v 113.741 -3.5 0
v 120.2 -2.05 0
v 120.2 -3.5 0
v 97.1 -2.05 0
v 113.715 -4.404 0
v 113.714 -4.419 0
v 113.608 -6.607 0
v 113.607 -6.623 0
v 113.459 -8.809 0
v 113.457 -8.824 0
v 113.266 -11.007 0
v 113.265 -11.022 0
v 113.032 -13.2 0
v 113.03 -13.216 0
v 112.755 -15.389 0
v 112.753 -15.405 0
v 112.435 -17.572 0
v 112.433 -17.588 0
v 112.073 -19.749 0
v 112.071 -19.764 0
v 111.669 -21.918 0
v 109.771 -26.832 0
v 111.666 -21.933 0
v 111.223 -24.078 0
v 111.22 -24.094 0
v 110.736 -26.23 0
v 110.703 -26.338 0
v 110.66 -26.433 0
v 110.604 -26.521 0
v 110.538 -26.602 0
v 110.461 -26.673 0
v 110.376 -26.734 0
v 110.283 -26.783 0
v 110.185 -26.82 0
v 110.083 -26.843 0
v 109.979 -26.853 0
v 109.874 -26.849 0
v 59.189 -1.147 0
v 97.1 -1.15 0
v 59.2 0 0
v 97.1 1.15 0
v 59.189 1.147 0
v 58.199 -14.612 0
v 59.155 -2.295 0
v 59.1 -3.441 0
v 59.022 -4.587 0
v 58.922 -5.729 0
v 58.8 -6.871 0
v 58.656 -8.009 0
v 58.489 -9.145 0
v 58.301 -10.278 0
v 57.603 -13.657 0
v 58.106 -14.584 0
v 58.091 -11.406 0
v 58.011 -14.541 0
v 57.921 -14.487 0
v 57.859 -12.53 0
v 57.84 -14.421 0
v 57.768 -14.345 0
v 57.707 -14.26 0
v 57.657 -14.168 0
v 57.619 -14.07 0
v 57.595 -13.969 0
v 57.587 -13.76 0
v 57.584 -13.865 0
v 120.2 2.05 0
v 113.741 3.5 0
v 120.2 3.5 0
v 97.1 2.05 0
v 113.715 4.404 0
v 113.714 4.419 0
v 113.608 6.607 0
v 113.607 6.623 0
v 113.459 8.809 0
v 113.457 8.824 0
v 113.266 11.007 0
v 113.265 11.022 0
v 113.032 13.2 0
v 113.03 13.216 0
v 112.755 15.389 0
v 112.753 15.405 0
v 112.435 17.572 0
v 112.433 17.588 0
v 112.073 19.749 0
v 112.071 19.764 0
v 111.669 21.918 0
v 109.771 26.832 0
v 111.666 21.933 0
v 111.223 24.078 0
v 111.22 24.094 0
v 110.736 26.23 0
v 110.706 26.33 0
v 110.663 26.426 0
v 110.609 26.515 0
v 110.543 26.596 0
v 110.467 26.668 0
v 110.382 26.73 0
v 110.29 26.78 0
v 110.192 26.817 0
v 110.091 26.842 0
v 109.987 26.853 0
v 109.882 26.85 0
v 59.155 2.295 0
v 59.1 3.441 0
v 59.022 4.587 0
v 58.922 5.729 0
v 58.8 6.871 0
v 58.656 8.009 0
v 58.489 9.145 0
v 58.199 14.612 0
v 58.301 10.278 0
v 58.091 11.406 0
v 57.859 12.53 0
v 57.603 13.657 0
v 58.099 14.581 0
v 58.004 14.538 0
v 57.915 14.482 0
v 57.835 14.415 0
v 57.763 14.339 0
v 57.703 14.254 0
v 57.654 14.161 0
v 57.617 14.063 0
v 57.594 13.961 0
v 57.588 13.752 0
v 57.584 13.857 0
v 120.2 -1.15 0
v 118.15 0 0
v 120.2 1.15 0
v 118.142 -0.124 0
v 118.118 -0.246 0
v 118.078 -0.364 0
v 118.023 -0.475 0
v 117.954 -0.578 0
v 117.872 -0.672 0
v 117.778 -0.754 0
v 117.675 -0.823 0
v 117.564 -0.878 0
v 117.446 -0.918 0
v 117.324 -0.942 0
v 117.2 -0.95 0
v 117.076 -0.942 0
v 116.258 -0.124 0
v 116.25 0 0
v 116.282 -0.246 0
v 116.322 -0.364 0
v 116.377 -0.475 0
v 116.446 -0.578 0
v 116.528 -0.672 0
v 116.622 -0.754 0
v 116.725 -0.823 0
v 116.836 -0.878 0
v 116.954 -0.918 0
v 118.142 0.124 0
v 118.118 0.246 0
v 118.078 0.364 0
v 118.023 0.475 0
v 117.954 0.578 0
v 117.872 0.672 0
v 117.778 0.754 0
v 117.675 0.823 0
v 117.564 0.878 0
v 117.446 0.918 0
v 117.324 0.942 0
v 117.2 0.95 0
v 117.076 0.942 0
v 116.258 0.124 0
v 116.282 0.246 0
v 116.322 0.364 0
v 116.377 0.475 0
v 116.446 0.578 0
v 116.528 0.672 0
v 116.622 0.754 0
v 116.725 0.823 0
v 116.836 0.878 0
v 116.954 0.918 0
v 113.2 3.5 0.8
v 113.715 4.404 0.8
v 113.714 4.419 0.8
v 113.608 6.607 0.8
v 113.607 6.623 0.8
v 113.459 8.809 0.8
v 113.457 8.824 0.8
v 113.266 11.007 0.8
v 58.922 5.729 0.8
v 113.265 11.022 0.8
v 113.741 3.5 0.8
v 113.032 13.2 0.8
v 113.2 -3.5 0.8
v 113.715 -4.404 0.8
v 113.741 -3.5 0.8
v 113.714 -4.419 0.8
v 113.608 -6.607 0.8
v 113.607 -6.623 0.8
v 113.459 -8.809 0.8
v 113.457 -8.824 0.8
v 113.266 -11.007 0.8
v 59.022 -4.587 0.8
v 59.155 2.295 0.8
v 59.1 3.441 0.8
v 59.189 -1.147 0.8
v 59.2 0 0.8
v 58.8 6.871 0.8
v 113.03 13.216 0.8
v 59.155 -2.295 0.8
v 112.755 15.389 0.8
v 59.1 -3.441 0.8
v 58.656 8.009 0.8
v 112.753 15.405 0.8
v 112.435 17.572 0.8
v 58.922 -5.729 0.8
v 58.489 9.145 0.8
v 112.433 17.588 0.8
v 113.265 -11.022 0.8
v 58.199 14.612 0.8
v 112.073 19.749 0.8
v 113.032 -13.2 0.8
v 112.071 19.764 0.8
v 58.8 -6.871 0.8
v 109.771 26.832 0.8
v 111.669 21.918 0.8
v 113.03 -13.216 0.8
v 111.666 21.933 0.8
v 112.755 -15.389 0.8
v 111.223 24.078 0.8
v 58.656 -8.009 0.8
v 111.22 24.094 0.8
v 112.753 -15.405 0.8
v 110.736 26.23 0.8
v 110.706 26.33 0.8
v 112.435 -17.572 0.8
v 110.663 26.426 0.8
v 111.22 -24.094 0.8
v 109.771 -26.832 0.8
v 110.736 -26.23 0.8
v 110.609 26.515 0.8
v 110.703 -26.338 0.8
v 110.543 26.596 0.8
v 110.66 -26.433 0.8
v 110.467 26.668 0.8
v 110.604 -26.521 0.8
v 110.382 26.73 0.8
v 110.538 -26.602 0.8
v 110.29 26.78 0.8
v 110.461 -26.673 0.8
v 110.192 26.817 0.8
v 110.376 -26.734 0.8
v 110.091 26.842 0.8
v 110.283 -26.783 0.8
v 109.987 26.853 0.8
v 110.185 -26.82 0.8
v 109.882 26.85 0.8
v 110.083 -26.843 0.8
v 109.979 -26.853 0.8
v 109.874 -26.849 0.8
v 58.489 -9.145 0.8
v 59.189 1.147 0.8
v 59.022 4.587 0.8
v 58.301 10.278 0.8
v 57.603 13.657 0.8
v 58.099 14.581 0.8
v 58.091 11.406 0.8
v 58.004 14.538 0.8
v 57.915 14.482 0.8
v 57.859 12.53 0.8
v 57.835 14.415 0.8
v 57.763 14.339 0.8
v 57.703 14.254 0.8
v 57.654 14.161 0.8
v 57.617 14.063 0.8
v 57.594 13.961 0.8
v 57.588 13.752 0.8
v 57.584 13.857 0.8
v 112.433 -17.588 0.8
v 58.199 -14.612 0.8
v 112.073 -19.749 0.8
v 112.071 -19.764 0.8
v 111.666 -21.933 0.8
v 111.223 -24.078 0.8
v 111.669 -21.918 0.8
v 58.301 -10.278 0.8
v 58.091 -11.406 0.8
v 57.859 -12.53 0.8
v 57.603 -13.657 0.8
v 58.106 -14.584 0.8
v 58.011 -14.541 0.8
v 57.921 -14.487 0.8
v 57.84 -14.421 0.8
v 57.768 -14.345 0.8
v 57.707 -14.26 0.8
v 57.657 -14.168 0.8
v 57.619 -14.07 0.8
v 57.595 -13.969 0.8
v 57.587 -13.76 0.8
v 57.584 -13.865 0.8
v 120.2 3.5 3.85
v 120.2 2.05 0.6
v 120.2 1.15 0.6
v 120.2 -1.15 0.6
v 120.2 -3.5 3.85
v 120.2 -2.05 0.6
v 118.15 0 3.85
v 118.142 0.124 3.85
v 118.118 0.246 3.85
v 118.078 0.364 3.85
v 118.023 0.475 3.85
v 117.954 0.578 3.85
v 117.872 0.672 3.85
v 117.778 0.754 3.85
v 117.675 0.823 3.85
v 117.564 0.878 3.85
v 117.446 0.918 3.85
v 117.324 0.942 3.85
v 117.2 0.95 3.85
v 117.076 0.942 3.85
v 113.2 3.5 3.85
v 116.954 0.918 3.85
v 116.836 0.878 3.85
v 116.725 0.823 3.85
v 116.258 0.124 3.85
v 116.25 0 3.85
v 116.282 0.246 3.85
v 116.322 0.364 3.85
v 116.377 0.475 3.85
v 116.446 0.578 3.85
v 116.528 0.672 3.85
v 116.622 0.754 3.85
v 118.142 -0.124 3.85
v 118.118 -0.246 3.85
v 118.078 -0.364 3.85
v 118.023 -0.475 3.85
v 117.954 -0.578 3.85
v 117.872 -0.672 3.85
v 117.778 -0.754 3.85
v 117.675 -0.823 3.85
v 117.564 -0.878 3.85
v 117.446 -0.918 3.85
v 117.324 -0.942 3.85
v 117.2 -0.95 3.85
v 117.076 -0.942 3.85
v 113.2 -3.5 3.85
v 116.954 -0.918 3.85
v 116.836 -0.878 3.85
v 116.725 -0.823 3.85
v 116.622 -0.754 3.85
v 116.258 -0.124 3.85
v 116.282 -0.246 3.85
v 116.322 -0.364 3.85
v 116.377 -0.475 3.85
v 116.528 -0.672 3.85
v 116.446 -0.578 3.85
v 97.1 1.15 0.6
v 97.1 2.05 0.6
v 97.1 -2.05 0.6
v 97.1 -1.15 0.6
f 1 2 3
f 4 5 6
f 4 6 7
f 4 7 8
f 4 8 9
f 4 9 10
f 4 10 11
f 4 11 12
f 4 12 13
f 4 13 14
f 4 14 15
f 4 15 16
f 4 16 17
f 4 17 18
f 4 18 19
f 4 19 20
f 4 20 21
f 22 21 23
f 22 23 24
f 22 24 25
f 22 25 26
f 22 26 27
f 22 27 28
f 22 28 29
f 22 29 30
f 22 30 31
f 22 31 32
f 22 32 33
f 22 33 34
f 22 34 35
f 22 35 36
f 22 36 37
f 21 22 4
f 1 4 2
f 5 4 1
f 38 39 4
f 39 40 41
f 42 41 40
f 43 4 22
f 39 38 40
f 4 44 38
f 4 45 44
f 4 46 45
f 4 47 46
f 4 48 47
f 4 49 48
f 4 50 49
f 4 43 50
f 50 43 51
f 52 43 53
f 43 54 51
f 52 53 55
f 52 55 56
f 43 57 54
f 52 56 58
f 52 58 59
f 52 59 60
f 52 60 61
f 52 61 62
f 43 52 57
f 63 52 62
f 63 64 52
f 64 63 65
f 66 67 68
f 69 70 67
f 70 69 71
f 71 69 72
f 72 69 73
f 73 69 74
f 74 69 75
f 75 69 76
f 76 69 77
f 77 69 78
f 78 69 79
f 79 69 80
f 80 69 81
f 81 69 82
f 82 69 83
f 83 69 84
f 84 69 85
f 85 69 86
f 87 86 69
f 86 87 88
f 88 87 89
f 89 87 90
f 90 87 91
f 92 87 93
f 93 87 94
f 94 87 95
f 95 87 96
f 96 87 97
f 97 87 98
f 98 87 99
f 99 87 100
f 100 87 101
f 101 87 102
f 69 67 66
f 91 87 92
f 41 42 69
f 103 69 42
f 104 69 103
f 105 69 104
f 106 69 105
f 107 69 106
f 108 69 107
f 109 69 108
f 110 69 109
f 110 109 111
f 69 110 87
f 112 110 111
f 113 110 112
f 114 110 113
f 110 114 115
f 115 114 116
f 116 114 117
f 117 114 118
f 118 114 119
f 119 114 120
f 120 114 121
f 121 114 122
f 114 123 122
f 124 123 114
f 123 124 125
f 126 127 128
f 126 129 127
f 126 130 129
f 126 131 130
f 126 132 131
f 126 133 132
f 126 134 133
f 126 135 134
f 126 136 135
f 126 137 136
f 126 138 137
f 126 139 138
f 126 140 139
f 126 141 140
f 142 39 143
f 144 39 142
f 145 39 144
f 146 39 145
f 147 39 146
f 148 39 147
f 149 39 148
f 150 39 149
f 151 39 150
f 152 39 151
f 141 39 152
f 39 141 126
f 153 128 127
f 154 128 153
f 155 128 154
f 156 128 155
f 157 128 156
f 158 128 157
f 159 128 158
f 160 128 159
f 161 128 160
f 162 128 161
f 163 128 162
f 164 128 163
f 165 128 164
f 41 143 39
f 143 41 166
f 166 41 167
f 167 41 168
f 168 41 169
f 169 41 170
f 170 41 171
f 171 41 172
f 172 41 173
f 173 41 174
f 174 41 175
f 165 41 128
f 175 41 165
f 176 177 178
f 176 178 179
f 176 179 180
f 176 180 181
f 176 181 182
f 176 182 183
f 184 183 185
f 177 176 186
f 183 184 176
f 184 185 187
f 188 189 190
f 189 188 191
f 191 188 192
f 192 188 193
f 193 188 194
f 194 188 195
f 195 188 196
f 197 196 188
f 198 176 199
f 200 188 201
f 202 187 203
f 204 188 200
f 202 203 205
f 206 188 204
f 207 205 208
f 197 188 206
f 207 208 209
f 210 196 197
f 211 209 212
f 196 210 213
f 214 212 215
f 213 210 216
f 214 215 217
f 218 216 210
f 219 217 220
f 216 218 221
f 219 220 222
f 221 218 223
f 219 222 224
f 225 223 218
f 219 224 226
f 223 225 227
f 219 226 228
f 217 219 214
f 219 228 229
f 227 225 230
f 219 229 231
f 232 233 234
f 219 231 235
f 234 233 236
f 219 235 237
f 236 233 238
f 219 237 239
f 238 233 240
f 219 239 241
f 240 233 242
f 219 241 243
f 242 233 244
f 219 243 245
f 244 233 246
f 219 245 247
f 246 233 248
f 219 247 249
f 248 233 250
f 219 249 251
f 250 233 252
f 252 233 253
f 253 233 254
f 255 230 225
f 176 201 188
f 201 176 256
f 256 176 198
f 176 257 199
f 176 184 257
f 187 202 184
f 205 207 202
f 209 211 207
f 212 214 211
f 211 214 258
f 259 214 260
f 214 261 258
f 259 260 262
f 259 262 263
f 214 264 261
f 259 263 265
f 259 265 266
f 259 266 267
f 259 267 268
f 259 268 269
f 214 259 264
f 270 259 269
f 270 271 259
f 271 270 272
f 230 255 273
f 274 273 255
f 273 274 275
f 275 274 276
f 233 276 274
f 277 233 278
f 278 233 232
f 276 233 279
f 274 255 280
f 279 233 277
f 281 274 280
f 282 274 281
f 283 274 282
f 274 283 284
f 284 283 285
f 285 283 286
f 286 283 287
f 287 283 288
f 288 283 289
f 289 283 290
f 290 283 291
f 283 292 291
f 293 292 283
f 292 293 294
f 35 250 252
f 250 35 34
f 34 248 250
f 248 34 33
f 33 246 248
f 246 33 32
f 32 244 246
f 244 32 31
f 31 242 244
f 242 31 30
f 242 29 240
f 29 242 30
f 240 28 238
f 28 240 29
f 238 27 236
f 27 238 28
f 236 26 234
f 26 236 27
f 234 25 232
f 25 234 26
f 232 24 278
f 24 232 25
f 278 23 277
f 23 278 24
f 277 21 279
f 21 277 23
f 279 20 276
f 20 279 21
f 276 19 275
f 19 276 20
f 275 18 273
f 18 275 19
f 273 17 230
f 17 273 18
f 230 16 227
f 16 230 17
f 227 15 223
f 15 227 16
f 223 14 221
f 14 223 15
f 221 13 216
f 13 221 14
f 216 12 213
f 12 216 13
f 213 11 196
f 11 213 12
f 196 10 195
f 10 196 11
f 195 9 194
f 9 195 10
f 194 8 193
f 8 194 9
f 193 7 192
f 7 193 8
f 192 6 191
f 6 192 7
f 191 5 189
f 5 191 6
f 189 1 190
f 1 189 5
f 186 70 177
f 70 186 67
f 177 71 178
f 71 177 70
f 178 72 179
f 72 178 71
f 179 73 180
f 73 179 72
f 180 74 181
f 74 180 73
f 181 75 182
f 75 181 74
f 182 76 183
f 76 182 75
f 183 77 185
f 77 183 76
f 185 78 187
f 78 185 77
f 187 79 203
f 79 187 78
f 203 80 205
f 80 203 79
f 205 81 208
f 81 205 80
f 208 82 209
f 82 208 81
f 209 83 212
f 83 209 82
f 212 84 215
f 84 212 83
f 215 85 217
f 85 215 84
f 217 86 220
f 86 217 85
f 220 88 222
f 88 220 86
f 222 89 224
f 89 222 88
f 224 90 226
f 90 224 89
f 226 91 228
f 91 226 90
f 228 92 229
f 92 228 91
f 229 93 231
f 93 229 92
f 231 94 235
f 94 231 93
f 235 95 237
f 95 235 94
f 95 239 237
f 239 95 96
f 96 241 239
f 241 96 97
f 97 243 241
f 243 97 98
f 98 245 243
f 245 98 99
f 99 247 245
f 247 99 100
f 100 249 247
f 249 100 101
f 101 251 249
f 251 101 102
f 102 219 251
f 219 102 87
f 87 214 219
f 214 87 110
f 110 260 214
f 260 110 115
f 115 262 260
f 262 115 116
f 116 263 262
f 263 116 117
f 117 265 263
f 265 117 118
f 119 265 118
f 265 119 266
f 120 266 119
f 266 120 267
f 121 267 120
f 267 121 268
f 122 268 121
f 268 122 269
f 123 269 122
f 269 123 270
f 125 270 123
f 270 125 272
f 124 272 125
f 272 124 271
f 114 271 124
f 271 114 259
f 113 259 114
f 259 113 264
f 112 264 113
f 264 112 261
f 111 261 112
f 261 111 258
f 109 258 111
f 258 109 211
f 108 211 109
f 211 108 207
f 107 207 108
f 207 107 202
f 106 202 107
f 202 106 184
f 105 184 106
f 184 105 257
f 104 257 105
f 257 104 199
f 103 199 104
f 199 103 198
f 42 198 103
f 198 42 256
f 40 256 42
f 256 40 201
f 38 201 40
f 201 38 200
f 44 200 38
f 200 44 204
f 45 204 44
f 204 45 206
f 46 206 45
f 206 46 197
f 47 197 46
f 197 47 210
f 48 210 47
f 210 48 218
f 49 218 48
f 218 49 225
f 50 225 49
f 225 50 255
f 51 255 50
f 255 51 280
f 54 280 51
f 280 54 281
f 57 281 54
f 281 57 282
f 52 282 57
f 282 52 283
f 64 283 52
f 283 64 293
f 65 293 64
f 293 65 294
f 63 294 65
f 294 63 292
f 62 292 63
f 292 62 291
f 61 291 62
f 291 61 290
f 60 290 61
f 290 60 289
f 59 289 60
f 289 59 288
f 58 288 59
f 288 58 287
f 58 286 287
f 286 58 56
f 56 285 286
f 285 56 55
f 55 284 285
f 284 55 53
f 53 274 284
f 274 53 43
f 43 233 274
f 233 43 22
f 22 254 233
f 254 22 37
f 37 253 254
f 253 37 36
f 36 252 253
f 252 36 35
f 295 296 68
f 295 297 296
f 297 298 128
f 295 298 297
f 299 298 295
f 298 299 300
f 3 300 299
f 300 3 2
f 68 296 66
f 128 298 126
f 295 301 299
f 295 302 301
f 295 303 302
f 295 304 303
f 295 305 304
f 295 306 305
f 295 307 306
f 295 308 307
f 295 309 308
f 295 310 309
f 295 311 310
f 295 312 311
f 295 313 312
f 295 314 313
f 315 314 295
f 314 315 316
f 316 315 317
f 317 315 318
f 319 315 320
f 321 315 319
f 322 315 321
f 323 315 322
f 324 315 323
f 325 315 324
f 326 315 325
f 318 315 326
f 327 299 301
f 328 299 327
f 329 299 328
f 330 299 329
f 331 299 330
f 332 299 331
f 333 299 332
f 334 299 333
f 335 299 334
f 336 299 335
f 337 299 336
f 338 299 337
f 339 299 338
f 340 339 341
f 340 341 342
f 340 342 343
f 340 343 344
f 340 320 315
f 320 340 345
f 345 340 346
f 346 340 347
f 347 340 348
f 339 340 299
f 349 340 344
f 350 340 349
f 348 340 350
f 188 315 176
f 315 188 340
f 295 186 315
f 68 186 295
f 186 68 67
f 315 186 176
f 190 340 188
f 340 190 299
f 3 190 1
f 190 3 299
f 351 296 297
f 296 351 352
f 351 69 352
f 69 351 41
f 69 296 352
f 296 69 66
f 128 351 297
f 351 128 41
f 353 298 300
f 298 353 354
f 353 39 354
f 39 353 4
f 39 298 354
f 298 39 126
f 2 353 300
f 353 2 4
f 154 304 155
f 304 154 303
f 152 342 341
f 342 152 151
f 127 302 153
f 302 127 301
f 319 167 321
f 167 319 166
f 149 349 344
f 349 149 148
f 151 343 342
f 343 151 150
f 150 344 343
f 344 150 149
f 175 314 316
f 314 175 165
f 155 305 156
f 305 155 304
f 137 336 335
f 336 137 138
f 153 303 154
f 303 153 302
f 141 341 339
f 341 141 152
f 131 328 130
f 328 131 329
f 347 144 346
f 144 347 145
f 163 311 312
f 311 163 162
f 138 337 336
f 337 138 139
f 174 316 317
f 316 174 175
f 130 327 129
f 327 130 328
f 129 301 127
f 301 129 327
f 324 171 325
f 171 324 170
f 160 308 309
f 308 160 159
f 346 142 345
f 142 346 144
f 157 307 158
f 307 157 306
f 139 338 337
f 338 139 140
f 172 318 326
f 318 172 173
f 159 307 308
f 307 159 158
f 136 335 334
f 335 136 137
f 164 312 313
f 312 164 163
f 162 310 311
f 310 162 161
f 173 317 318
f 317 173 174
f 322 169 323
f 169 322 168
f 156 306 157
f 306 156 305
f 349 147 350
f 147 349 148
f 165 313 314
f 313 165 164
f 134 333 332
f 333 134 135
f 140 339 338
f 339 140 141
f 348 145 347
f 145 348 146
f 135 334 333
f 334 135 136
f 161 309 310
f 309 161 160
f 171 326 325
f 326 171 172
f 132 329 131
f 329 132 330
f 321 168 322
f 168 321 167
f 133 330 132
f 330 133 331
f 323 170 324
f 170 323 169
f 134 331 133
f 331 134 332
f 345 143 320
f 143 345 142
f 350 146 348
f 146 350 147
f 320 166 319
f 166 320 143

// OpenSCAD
// Gen-DB — bobbin LID (top flange + locating tab). Print x12, flange face DOWN on the bed.
// CA-glue onto the hub top BEFORE winding. Tab = lap joint into the stator tab pocket; 1.75 mm filament
// pin through pin hole + stator ledge, trim flush. Lead slots carry both leads flush.
include <parameters.scad>;
$fn = 48;
module sector_2d(r_in, r_out, ang) {
    polygon([
        for (a = [-ang/2 : ang/24 : ang/2]) [r_in*cos(a), r_in*sin(a)],
        for (a = [ang/2 : -ang/24 : -ang/2]) [r_out*cos(a), r_out*sin(a)]
    ]);
}
module footprint_2d() { offset(r=wall) sector_2d(coil_id_r, coil_od_r, span_deg); }
module hub_2d()       { offset(delta=-coil_core_inset) sector_2d(coil_id_r, coil_od_r, span_deg); }

difference() {
    union() {
        linear_extrude(flange_t) footprint_2d();
        translate([coil_od_r + 0.2, -tab_w/2, 0]) cube([tab_len, tab_w, tab_h]);
    }
    translate([coil_mount_r, 0, -0.1]) cylinder(d=pin_d, h=tab_h + 1);
    for (y = [lead_y, -lead_y])
        translate([coil_od_r - coil_core_inset - 0.5, y - lead_slot_w/2, -0.1])
            cube([coil_core_inset + tab_len + 2, lead_slot_w, lead_groove_d + 0.1]);
}
